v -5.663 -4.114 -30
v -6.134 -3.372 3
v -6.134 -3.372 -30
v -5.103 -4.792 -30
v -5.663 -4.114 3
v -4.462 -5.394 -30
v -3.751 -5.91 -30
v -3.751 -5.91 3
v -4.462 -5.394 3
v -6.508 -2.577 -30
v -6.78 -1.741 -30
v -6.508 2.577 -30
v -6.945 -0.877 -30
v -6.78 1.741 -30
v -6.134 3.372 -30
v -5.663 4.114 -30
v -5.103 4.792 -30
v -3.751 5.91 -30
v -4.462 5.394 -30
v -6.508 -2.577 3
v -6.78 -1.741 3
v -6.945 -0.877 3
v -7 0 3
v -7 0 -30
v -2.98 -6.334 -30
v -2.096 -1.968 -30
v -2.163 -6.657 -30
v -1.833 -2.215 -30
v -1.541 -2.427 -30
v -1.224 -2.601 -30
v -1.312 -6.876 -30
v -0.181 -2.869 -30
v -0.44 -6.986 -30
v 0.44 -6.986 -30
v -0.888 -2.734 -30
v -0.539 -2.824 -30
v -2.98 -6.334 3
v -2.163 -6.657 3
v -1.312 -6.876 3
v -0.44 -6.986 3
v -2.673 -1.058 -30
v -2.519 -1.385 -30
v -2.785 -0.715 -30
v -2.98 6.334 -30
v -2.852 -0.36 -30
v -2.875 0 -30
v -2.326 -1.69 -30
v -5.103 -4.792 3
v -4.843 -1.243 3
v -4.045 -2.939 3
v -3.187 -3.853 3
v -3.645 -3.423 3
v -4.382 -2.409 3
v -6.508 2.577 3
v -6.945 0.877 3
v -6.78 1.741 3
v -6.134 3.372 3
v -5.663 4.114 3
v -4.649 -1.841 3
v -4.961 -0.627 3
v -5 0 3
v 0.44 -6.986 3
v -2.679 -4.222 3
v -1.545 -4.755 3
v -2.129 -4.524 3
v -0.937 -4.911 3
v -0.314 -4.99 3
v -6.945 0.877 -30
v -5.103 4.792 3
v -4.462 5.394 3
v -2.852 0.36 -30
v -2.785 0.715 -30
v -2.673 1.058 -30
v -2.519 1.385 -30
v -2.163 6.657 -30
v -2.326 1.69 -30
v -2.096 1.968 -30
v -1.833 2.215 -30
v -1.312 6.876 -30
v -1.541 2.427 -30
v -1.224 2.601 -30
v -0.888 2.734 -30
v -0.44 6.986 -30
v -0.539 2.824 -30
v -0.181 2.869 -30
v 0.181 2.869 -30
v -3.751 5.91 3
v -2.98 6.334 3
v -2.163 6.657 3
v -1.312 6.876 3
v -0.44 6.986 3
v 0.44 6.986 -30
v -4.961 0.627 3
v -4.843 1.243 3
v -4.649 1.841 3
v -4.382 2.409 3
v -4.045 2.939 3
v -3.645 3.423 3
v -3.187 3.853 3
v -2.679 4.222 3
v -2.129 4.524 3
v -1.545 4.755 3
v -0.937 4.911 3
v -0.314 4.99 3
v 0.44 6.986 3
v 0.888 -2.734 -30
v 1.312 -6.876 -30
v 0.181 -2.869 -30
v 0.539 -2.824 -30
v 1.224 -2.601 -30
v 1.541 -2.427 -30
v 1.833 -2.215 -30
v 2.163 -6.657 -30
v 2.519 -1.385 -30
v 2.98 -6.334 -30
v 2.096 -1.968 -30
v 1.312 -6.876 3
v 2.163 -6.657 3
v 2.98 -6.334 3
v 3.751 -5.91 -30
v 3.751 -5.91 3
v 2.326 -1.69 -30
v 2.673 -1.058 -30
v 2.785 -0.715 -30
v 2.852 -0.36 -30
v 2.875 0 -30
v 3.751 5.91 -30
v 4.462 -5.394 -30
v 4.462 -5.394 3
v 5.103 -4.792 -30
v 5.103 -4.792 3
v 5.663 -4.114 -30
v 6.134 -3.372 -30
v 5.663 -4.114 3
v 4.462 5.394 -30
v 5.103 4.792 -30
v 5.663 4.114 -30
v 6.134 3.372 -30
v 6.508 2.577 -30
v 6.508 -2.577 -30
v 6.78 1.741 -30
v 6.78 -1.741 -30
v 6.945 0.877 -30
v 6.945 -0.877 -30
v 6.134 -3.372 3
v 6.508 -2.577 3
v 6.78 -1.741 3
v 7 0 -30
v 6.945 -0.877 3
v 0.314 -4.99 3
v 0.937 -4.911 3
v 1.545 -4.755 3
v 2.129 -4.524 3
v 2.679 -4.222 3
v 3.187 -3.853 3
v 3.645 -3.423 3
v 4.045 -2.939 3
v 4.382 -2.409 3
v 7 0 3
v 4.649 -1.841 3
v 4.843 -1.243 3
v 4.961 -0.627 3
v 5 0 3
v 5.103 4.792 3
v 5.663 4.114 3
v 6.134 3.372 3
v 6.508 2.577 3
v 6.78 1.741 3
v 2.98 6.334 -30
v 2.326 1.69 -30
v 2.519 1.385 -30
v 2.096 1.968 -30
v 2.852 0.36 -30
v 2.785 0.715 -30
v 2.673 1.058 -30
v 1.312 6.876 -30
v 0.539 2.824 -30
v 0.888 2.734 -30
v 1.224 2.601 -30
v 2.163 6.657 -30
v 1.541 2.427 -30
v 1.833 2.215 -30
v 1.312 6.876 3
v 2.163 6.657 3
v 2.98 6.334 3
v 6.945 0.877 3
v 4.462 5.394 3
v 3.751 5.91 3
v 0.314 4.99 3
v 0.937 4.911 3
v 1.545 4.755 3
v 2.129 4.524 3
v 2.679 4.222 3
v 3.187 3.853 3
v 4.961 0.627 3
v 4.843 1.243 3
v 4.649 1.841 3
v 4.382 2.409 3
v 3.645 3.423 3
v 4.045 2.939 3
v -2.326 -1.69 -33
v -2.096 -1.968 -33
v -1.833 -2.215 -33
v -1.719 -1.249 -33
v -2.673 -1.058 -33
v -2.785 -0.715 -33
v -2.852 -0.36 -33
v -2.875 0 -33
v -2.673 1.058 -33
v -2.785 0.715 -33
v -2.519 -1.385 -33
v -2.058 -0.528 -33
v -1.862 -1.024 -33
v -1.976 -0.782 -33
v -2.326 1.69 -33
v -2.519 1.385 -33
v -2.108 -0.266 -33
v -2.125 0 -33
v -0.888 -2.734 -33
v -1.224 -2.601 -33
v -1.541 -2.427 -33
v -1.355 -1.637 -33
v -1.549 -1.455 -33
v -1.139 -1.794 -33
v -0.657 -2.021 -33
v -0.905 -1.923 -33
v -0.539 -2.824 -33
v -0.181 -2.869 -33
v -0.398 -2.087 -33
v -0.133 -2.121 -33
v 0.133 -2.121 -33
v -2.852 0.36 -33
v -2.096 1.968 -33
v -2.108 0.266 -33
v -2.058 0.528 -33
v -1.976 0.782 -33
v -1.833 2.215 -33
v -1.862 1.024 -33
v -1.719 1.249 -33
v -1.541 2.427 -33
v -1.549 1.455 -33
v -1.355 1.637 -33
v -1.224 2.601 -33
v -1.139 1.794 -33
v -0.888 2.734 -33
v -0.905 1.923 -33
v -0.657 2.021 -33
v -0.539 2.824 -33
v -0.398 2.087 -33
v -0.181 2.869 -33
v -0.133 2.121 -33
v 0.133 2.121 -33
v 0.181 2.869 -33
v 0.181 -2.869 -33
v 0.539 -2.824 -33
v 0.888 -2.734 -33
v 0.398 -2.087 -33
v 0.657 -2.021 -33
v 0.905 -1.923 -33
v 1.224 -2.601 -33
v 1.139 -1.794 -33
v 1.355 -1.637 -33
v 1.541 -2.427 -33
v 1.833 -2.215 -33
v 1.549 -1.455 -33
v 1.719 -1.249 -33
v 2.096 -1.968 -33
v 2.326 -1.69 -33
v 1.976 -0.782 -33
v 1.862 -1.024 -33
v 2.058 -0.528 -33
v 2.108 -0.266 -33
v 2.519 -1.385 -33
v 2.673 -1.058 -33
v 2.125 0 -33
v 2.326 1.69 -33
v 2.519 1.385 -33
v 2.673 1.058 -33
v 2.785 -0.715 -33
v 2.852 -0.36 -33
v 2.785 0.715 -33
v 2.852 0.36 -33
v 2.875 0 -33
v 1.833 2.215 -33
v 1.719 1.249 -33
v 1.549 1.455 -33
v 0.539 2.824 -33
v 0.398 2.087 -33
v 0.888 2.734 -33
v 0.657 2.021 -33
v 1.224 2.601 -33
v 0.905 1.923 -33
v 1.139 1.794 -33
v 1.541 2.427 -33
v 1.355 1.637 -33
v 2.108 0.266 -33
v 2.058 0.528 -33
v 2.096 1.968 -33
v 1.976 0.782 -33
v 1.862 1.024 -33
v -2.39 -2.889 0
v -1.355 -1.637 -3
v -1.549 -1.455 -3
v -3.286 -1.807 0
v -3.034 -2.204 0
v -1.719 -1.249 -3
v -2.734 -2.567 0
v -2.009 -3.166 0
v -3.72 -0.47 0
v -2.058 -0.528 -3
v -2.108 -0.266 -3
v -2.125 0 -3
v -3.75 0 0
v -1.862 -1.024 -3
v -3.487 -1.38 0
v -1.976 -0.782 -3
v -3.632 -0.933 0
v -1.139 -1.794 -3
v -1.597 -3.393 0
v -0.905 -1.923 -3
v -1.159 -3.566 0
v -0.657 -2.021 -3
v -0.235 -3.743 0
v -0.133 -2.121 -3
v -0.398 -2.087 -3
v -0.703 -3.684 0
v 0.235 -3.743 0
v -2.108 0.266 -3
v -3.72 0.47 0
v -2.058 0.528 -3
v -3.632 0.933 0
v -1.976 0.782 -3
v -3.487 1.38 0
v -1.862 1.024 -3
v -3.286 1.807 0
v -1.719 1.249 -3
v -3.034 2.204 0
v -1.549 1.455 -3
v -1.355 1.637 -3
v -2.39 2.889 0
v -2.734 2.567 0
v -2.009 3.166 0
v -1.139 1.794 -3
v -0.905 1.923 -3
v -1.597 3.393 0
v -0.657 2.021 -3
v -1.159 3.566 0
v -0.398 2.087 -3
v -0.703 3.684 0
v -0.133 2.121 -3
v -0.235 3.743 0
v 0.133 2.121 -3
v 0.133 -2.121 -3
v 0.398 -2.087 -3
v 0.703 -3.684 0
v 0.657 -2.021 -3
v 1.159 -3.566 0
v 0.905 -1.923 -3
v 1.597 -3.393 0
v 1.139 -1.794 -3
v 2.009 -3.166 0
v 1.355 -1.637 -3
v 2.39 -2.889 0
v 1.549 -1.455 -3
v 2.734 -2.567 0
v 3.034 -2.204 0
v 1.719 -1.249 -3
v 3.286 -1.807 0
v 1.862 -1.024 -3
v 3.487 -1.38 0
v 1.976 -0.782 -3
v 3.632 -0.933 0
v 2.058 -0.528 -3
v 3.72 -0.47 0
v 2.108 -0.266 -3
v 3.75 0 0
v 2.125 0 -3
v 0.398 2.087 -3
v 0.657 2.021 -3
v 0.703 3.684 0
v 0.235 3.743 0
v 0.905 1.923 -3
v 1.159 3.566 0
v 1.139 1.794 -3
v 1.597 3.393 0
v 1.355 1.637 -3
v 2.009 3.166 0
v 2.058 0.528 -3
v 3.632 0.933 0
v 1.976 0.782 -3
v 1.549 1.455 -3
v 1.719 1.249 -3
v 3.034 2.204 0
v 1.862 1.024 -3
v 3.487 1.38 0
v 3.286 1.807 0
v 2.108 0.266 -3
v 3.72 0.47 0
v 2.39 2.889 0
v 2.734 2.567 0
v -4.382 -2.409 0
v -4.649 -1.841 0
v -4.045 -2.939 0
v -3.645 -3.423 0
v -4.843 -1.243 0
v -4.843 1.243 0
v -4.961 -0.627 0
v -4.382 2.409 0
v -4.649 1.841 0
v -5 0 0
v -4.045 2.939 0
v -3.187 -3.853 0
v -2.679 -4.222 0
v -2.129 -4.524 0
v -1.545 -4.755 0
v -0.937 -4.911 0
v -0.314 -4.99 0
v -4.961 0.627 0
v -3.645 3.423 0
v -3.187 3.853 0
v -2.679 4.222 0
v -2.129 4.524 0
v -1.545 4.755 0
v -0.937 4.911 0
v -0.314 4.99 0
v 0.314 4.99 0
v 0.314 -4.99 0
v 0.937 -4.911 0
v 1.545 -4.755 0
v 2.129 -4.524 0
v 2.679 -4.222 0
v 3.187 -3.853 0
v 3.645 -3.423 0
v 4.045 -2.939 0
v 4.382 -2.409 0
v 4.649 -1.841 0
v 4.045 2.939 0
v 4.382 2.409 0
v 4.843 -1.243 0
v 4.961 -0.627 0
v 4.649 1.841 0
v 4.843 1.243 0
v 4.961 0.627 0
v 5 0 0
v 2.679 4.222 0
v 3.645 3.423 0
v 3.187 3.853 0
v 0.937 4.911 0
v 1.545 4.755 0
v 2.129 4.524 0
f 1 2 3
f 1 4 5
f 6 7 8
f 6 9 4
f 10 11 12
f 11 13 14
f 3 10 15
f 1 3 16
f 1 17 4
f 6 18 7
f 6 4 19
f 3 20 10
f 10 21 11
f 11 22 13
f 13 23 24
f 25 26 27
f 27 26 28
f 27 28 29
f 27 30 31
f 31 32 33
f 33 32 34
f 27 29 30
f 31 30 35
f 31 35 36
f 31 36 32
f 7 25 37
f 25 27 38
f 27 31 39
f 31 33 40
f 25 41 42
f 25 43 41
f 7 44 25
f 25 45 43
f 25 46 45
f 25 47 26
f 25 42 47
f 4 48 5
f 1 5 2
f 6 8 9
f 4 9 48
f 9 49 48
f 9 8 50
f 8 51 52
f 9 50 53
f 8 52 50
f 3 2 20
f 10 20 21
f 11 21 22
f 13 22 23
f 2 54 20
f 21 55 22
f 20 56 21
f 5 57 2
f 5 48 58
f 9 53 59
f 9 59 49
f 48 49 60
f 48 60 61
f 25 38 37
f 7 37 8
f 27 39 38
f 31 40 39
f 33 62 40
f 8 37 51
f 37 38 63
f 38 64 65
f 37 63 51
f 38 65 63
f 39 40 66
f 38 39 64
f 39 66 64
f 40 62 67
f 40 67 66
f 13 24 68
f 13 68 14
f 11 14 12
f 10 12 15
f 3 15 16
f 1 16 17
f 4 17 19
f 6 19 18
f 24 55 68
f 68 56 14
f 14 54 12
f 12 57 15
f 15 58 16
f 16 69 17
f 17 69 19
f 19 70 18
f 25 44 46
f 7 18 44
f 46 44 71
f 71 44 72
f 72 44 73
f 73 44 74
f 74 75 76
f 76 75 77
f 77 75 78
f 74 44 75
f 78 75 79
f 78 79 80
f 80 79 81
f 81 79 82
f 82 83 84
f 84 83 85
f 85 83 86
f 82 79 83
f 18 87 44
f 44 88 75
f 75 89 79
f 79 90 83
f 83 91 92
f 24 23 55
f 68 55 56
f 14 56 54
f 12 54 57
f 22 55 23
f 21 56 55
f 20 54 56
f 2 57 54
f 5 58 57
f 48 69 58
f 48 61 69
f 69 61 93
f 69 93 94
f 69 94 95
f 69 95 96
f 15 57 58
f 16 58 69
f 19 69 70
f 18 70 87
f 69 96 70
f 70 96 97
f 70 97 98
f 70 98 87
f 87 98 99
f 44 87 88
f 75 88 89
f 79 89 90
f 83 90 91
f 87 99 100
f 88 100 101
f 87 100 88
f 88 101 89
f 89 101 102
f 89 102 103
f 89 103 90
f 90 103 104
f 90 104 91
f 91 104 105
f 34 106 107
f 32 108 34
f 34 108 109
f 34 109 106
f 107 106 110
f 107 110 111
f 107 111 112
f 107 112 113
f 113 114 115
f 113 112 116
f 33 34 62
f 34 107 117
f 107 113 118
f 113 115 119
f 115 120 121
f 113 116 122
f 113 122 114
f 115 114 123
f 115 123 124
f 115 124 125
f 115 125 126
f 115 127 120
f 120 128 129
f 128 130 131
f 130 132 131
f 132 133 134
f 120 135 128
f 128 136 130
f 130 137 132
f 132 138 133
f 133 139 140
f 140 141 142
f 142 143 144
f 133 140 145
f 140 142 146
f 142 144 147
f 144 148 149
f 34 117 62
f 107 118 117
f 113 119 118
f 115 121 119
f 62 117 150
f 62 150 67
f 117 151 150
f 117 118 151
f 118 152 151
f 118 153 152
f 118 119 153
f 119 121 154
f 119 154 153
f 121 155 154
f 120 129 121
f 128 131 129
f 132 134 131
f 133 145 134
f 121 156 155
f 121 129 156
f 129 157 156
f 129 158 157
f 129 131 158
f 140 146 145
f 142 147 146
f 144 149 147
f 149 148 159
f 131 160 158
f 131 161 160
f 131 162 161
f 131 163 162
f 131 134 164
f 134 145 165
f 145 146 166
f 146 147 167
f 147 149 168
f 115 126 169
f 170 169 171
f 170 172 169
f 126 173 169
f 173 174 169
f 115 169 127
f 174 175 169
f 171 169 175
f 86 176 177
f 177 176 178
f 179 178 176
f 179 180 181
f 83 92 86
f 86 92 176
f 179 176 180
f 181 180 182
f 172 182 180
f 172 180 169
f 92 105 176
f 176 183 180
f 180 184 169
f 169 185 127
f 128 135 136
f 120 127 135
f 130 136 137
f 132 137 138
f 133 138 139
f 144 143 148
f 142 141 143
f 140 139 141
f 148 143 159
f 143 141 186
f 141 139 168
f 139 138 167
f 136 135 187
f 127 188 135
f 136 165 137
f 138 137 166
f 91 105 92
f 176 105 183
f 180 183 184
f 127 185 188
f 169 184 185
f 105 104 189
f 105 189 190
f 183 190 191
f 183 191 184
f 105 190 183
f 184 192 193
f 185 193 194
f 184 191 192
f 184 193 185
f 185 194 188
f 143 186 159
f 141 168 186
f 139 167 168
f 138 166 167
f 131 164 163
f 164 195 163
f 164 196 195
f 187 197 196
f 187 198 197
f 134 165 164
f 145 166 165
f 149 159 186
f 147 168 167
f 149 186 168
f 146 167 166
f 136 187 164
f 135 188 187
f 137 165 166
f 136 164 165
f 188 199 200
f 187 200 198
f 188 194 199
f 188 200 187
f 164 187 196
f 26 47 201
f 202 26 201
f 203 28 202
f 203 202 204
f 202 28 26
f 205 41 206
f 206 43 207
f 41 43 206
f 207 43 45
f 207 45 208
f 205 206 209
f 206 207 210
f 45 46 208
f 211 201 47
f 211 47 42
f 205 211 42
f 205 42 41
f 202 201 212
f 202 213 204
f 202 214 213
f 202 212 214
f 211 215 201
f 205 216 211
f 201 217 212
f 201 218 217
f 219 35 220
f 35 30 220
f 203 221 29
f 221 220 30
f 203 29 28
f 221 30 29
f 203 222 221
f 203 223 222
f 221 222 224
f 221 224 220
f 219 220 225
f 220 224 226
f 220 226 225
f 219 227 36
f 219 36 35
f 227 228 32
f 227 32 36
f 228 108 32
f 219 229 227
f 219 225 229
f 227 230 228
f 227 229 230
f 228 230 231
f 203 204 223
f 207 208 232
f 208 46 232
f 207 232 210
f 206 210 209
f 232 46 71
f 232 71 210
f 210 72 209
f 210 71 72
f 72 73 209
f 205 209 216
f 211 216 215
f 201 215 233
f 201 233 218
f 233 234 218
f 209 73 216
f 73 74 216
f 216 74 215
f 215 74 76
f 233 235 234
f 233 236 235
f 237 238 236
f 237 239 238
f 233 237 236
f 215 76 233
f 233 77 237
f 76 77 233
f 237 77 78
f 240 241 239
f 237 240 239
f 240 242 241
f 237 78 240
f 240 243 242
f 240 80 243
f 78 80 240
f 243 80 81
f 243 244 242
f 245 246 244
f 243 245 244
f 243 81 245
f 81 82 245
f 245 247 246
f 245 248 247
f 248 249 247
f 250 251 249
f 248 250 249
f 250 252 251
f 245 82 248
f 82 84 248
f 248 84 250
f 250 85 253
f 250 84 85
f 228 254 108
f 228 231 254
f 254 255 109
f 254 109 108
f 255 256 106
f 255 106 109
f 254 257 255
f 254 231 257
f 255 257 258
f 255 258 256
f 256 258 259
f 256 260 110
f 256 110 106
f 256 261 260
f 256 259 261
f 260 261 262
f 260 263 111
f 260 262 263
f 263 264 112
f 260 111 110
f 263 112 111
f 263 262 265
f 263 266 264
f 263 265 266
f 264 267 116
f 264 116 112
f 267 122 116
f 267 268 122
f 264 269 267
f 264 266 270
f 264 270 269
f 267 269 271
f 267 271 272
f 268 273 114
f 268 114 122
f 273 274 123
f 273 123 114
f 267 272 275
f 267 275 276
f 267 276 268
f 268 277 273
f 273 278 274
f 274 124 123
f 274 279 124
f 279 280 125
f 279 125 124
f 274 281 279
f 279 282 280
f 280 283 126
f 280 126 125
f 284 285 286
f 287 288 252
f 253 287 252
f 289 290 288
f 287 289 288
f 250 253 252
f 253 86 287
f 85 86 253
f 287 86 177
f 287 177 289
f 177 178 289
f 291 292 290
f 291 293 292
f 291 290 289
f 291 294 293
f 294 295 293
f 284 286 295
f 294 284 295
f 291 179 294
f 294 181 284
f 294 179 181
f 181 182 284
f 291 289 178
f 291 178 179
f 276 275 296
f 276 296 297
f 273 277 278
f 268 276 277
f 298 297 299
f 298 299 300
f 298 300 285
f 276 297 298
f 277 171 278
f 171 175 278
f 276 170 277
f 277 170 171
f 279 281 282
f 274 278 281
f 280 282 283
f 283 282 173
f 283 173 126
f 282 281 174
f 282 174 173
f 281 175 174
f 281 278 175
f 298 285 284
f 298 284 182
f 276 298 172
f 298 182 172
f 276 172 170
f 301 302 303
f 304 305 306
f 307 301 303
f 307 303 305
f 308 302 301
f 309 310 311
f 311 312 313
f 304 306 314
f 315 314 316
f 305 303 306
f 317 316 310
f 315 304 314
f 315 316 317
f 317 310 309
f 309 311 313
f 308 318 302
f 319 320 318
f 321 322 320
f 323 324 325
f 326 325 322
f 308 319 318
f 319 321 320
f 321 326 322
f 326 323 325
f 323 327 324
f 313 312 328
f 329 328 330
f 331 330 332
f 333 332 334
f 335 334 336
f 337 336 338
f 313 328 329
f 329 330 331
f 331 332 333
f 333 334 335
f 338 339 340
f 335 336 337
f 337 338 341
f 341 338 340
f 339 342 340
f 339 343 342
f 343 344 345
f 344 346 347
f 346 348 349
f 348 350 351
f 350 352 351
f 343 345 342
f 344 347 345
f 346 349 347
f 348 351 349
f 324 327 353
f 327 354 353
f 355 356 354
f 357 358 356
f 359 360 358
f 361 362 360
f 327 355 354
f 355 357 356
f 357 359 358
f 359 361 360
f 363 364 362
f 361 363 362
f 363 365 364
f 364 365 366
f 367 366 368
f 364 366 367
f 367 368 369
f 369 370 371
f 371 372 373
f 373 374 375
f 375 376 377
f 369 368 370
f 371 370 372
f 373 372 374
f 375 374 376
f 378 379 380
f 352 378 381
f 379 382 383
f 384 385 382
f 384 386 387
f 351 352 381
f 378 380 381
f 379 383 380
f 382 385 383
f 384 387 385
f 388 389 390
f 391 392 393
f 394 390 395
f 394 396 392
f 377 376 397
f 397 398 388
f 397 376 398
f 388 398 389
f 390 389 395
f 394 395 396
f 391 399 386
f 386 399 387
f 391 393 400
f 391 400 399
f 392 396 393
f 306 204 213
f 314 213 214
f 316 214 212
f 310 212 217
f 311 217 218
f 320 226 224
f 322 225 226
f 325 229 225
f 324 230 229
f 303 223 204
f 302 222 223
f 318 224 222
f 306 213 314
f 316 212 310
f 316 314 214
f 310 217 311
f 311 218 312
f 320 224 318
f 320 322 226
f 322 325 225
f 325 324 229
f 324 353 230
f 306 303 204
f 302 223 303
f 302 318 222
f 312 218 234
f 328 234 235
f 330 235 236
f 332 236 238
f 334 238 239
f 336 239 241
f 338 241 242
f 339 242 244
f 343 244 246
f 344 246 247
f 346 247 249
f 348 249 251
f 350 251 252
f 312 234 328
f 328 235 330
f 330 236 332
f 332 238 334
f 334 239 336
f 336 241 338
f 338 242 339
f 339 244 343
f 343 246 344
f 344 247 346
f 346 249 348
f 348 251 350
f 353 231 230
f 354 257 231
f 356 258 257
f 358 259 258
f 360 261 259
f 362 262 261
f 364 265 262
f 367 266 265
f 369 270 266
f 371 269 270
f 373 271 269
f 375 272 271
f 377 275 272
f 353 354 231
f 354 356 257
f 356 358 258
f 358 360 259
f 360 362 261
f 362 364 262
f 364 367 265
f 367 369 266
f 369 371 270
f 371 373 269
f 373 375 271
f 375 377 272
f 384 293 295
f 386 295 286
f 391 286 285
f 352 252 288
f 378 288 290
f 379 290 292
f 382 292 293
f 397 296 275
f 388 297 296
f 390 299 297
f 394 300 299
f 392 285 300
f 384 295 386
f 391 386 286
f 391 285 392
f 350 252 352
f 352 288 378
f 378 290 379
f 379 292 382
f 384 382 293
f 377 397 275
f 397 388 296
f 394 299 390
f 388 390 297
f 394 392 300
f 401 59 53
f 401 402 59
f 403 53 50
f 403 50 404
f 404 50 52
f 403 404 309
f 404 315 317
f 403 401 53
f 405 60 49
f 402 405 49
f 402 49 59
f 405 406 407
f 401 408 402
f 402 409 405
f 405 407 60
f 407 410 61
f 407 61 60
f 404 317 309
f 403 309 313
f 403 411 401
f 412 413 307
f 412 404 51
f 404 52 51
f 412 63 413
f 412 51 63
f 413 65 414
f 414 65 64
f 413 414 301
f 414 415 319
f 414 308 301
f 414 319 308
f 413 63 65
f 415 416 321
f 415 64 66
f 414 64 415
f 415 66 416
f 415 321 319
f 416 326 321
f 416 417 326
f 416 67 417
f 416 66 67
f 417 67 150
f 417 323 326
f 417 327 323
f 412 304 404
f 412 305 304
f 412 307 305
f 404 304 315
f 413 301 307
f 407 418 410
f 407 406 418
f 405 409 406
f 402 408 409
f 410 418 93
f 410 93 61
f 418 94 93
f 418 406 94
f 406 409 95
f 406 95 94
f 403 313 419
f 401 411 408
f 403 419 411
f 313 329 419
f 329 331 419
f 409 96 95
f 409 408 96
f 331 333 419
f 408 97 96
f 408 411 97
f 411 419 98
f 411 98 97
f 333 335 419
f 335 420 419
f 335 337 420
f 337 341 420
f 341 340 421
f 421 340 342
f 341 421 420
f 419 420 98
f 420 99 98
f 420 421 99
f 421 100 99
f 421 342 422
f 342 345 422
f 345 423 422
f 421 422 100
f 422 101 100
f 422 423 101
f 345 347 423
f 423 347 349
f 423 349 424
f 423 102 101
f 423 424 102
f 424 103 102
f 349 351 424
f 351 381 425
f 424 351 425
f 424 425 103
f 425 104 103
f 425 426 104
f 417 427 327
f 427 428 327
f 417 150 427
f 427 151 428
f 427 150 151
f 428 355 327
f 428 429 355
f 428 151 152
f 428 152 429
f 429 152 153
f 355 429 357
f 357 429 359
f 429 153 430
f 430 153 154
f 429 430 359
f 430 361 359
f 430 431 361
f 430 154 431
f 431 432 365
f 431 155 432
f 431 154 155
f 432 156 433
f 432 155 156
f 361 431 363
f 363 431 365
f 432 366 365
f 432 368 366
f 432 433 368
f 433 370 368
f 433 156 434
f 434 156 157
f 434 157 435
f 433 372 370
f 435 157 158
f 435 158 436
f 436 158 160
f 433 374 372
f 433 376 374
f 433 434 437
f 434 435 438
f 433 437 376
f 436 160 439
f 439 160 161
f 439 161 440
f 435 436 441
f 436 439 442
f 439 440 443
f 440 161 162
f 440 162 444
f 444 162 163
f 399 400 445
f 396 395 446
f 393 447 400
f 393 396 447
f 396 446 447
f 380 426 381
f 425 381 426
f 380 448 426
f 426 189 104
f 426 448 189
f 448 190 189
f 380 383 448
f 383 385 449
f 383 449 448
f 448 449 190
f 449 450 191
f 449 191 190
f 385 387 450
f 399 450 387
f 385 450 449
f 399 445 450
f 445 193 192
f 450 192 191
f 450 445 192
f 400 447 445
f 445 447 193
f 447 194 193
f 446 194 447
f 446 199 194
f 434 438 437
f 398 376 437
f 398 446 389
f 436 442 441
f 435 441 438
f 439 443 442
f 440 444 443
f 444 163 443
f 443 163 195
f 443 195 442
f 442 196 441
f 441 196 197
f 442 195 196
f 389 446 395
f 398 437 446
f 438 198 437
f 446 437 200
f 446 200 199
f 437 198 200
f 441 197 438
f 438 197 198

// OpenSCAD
$fn = 50;


difference() {
	union() {
		translate(v = [0, 0, -30.0000000000]) {
			cylinder(h = 33, r = 7.0000000000);
		}
		#translate(v = [0, 0, -33.0000000000]) {
			cylinder(h = 33, r = 2.8750000000);
		}
	}
	union() {
		translate(v = [0, 0, 0]) {
			rotate(a = [0, 0, 0]) {
				difference() {
					union() {
						translate(v = [0, 0, -33.0000000000]) {
							cylinder(h = 33, r = 2.0000000000);
						}
						translate(v = [0, 0, -3]) {
							cylinder(h = 3, r1 = 2.1250000000, r2 = 3.7500000000);
						}
						translate(v = [0, 0, -33.0000000000]) {
							cylinder(h = 33, r = 2.1250000000);
						}
						translate(v = [0, 0, -33.0000000000]) {
							cylinder(h = 33, r = 2.0000000000);
						}
					}
					union();
				}
			}
		}
		#cylinder(h = 3, r = 5.0000000000);
	}
}
